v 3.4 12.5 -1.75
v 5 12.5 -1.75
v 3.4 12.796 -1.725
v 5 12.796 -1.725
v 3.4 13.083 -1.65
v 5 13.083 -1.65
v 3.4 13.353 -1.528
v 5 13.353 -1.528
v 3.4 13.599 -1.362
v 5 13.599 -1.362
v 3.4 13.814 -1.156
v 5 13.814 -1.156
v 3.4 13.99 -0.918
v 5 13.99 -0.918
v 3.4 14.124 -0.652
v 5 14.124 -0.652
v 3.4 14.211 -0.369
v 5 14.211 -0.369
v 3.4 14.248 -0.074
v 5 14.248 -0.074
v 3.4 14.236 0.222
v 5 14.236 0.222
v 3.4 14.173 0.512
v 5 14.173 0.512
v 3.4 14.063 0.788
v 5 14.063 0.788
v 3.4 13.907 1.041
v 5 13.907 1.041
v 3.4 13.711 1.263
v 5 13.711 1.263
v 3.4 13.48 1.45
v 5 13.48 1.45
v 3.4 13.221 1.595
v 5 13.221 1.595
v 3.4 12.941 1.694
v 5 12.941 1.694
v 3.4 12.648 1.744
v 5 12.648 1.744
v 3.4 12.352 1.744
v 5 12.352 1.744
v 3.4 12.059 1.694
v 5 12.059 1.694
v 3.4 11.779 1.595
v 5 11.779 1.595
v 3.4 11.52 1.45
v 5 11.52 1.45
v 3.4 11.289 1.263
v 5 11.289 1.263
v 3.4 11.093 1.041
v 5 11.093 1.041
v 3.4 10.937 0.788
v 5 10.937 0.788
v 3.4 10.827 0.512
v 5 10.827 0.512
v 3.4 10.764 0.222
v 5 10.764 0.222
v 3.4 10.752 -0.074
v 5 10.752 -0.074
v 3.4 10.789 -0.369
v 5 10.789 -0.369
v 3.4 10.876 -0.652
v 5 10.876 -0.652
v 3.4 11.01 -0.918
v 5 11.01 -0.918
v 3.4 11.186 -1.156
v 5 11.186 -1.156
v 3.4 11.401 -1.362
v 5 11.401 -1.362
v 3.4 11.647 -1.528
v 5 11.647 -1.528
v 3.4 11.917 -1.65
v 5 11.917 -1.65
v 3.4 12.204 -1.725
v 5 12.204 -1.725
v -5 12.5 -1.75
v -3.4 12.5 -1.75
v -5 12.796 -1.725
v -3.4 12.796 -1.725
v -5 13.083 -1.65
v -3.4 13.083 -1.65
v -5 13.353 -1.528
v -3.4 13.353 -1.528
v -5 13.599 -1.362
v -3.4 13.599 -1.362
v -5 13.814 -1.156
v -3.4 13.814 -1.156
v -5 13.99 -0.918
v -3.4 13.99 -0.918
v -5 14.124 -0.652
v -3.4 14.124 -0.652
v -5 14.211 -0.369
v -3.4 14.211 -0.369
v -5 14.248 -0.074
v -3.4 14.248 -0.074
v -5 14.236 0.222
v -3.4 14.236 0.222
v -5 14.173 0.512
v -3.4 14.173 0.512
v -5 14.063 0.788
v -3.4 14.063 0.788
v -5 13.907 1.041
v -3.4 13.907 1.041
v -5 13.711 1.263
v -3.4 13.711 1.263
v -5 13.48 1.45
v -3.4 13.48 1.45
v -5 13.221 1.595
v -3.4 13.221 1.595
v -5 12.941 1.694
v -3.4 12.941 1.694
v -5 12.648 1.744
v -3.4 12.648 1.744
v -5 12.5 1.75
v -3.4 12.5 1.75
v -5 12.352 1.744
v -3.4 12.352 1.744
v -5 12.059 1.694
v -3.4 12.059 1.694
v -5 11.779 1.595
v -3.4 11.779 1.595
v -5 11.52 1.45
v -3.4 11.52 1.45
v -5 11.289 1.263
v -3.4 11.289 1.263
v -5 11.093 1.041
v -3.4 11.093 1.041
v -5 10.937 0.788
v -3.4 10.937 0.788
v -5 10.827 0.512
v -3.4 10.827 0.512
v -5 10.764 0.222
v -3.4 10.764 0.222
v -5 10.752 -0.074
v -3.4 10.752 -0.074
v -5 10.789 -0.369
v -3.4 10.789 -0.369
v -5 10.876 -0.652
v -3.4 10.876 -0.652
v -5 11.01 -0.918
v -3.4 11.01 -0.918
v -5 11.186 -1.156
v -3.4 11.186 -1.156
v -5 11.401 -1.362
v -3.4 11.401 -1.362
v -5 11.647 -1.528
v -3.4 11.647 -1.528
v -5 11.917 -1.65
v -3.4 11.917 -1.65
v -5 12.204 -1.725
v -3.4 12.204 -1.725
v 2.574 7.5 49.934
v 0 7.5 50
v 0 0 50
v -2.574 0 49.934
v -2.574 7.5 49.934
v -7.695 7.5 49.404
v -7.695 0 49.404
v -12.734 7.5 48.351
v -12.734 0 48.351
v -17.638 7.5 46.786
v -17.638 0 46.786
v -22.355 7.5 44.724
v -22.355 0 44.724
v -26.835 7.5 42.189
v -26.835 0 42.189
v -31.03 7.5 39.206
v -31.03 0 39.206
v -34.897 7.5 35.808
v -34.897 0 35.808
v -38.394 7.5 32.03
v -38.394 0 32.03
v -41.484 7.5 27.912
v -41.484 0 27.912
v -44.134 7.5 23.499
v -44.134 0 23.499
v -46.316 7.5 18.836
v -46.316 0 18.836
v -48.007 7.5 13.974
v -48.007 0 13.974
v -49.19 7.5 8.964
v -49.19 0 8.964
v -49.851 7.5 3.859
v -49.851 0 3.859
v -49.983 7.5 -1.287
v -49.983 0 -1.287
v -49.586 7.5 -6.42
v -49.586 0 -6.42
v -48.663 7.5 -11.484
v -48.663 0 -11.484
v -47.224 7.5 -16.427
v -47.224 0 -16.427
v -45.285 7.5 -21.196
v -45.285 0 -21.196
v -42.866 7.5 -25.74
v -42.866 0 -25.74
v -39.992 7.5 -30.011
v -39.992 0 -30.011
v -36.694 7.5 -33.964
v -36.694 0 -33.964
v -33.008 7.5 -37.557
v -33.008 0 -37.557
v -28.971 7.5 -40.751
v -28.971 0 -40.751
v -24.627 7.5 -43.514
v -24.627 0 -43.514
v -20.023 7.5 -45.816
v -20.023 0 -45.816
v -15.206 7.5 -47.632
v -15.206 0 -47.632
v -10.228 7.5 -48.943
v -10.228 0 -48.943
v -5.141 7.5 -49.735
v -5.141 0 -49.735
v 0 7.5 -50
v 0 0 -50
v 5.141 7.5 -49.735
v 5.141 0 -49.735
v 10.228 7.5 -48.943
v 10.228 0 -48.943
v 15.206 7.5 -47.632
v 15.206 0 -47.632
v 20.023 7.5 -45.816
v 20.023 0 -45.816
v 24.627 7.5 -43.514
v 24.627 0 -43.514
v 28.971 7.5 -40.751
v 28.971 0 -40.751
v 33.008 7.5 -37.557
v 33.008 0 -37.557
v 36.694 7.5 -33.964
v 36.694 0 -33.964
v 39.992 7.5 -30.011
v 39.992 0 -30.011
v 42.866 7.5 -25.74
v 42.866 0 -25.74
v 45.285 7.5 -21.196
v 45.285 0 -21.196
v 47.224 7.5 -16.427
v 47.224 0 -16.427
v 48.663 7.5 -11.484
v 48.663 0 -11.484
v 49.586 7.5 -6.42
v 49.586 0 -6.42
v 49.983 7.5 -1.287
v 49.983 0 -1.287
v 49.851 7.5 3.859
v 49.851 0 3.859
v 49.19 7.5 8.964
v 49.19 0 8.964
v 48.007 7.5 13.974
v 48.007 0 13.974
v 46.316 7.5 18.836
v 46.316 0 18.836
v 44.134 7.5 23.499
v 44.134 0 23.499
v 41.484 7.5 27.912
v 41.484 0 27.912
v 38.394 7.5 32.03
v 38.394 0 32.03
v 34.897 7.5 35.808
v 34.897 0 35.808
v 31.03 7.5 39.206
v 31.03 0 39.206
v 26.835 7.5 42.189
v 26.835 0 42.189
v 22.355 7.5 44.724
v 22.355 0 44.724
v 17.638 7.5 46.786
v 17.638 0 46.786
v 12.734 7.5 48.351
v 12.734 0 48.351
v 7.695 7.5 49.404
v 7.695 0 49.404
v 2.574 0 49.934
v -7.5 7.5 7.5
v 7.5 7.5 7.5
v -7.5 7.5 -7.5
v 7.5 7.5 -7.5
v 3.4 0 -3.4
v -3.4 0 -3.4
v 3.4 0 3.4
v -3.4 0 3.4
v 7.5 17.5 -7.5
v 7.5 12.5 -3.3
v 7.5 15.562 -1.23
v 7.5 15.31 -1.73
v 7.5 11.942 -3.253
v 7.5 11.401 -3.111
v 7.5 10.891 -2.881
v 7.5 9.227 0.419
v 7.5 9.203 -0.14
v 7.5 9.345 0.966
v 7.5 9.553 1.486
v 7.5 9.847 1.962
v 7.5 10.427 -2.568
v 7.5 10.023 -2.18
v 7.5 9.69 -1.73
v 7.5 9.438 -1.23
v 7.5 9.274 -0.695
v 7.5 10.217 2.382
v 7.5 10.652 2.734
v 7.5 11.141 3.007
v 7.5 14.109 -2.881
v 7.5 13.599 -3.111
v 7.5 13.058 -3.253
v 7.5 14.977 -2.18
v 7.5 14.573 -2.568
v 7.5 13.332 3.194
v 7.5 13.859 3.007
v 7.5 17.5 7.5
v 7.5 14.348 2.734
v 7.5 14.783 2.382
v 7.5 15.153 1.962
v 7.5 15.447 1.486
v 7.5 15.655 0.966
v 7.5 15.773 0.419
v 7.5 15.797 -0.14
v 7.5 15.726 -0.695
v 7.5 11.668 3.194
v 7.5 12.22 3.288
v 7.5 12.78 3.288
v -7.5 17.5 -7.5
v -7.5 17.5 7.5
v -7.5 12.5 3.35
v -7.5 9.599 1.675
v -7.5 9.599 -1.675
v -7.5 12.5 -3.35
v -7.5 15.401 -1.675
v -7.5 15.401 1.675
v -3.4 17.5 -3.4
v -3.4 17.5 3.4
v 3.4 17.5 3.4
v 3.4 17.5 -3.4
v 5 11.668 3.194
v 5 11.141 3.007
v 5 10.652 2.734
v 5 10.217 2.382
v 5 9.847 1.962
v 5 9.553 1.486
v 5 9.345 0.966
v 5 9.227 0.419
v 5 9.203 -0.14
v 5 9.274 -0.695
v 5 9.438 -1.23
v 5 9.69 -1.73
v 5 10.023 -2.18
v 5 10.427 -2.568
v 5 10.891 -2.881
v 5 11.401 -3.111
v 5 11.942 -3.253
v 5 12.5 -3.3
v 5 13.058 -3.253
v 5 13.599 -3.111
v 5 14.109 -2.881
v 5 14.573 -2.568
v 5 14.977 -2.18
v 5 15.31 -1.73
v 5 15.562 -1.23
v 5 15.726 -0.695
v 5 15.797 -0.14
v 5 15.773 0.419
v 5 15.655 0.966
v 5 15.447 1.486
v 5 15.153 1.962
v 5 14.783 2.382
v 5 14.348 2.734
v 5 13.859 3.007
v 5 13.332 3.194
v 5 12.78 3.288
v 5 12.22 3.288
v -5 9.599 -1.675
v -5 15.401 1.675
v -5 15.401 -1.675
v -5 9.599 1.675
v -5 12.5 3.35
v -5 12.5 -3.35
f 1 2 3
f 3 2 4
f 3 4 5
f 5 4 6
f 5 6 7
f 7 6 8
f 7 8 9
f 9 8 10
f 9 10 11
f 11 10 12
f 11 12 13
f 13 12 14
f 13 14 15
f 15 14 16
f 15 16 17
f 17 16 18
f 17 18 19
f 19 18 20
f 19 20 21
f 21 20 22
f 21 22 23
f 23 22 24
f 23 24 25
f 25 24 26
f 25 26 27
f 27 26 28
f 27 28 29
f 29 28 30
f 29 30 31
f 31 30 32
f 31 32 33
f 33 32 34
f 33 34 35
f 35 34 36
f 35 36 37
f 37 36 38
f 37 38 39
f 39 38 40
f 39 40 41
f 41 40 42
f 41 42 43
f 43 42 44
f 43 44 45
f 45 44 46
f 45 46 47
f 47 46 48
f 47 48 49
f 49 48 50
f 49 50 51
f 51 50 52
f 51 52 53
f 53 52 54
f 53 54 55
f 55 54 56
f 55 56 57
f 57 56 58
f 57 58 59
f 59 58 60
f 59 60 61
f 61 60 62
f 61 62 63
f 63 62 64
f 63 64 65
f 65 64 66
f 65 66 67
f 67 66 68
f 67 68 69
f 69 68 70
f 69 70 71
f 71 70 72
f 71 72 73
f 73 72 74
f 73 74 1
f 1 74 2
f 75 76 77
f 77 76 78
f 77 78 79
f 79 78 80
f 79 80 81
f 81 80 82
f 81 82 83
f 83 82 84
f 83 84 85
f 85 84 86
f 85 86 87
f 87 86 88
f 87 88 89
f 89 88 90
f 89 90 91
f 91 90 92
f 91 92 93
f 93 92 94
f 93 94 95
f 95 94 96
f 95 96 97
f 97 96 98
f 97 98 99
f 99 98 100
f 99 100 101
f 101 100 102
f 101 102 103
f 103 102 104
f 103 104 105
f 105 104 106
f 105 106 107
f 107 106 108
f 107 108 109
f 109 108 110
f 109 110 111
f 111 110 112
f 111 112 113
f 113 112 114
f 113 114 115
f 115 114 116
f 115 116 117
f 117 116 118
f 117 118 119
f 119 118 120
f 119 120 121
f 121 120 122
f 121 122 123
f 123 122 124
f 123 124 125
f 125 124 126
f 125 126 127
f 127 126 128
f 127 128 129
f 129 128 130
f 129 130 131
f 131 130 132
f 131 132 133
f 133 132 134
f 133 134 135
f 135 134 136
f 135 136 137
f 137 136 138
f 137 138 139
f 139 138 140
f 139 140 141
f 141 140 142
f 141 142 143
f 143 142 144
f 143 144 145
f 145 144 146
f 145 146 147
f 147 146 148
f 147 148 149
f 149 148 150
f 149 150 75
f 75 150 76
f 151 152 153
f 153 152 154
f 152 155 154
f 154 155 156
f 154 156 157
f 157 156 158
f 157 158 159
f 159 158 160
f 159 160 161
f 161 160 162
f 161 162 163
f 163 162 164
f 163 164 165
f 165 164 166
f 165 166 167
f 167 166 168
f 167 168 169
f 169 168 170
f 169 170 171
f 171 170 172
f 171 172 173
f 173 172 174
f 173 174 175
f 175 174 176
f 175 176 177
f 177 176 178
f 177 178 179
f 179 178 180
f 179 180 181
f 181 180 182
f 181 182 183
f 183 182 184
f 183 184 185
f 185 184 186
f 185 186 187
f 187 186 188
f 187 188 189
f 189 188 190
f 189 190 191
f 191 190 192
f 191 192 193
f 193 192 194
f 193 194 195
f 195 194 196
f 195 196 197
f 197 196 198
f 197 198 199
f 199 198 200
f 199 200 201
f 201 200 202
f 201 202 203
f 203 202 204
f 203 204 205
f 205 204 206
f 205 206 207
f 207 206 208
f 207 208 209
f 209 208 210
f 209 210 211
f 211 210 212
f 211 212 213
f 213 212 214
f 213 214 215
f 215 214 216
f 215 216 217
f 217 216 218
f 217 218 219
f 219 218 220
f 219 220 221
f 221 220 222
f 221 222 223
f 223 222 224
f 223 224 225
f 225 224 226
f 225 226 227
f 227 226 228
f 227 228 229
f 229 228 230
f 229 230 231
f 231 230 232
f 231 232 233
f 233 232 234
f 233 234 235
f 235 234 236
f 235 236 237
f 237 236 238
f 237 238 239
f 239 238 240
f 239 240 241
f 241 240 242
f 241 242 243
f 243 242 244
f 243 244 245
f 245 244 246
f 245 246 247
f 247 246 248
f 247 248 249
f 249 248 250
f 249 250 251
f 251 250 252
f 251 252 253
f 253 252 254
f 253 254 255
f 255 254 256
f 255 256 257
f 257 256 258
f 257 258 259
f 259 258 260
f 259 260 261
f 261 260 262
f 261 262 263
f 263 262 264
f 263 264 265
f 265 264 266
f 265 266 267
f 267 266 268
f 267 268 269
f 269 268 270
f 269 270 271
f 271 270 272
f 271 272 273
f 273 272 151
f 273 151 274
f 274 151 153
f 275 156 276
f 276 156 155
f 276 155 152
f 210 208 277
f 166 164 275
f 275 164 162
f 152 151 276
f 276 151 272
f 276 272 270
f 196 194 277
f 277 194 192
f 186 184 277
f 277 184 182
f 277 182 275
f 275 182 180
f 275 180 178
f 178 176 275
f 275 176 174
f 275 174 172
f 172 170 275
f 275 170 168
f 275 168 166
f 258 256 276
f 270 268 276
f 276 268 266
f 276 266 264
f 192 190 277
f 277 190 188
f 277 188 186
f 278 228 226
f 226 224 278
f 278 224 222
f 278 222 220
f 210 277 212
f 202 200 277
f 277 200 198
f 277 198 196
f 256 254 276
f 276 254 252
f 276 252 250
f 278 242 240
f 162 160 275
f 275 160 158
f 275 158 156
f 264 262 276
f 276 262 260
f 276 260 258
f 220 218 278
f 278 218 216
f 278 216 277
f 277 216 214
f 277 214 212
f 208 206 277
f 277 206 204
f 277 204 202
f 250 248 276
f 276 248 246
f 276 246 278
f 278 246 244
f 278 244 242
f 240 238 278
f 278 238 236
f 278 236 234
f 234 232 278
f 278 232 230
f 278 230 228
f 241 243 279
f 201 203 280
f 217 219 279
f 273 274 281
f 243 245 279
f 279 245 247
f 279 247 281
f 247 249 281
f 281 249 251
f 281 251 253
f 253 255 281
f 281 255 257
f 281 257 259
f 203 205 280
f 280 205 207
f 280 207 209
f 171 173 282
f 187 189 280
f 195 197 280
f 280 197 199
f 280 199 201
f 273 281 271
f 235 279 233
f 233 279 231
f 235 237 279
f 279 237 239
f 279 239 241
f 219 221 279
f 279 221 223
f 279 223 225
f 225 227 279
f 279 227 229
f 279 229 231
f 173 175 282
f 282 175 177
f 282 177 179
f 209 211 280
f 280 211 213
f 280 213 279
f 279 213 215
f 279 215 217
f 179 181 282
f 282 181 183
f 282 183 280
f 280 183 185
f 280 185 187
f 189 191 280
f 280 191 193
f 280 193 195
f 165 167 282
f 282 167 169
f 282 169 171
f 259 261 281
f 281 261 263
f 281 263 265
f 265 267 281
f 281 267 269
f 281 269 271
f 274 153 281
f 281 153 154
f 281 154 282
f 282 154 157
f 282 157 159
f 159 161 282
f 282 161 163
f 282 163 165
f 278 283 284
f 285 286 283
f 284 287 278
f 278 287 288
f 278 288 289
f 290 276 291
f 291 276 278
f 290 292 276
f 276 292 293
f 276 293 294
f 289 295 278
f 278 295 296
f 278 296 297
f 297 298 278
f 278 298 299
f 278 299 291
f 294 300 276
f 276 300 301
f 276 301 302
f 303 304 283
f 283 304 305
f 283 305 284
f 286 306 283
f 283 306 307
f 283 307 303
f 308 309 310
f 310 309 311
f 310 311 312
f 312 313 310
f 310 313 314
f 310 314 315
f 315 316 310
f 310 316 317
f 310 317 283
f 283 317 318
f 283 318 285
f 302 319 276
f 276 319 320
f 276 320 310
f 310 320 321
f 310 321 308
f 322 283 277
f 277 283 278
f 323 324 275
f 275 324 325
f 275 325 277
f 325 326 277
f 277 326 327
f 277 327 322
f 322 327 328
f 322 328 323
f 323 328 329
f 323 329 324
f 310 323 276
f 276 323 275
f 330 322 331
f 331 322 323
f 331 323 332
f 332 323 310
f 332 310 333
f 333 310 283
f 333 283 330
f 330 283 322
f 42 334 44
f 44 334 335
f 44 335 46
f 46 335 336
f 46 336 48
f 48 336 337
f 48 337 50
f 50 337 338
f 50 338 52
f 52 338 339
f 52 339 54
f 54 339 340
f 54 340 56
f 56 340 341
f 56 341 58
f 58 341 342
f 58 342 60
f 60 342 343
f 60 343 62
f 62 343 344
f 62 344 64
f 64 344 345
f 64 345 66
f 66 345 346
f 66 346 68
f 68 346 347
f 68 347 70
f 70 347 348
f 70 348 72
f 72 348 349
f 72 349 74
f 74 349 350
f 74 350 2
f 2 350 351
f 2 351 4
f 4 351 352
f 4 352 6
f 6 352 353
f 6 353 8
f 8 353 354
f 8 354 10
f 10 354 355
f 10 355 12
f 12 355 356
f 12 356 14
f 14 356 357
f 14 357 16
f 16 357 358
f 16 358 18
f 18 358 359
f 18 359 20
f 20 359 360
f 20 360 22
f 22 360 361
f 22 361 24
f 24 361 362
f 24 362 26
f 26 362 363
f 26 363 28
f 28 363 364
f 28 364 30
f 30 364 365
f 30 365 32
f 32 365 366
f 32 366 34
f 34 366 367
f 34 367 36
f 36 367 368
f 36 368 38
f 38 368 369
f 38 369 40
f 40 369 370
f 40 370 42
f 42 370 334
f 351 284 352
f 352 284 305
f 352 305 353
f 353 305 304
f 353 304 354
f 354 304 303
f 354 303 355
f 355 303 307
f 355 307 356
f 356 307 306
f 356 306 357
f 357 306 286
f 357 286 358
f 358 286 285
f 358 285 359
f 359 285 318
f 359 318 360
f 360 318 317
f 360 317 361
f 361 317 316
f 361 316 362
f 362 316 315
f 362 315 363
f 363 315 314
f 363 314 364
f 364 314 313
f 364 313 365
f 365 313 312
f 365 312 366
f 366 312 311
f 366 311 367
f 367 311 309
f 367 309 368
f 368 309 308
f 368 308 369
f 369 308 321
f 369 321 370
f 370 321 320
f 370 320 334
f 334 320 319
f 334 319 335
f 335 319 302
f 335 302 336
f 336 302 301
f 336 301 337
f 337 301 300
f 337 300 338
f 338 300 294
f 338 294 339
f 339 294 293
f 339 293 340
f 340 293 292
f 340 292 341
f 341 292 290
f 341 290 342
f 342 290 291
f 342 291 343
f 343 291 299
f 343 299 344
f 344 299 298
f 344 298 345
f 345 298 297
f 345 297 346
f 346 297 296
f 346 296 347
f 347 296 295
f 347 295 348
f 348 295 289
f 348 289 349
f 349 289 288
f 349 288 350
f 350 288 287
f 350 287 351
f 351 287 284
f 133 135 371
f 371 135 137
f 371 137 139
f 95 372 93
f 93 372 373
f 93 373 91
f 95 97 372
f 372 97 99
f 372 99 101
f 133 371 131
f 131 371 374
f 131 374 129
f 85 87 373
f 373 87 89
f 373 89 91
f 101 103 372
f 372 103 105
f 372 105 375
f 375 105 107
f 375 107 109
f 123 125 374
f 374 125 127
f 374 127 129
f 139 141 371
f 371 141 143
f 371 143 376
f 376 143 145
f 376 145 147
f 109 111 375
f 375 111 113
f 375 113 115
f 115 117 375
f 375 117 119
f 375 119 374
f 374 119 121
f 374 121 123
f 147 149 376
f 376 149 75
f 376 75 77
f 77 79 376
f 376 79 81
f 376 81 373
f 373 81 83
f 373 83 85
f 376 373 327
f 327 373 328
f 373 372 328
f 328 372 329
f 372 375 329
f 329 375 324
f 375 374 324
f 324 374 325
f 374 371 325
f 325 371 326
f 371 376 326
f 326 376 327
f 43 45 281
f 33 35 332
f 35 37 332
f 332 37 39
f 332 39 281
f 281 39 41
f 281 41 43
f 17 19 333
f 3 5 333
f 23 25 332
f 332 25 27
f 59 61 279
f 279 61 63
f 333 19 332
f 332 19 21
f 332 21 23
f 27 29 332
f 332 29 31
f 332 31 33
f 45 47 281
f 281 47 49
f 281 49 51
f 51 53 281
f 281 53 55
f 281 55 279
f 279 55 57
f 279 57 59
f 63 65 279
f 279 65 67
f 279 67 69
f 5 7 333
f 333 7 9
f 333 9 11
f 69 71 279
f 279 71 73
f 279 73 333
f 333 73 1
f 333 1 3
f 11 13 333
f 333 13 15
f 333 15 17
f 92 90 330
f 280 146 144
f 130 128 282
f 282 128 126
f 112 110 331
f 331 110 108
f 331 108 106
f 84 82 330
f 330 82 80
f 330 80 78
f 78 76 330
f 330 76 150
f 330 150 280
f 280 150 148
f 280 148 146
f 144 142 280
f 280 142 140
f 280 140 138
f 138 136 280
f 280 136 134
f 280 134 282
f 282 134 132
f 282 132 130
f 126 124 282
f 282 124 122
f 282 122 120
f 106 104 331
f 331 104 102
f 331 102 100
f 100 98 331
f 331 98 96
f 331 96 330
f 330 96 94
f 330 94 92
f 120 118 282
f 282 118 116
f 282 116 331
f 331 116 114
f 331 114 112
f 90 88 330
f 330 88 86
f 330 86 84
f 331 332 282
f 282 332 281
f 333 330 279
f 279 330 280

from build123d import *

# Parameters (mm, degrees)
SKETCH1_R           = 50
BOSS_EXTRUDE1_DEPTH = 7.5
SKETCH2_W           = 15
SKETCH2_H           = 15
BOSS_EXTRUDE2_DEPTH = 10
SKETCH3_R           = 1.75
CUT_EXTRUDE1_DEPTH  = 15
SKETCH4_R           = 3.3
CUT_EXTRUDE2_DEPTH  = 2.5
CUT_EXTRUDE3_DEPTH  = 2.5
SKETCH6_W           = 6.8
SKETCH6_H           = 6.8
CUT_EXTRUDE4_DEPTH  = 17.5


with BuildPart() as part:
    # Sketch1 → Boss-Extrude1 (new body)
    with BuildSketch(Plane(origin=(0, 0, 0), x_dir=(1, 0, 0), z_dir=(0, 1, 0))):
        with Locations(Location((0, 0, 0), (0, 0, 270))):
            Circle(SKETCH1_R)
    extrude(amount=BOSS_EXTRUDE1_DEPTH)

    # Sketch2 → Boss-Extrude2 (add)
    with BuildSketch(Plane(origin=(0, 7.5, 0), x_dir=(1, 0, 0), z_dir=(0, 1, 0))):
        Rectangle(SKETCH2_W, SKETCH2_H)
    extrude(amount=BOSS_EXTRUDE2_DEPTH)

    # Sketch3 → Cut-Extrude1 (cut)
    with BuildSketch(Plane(origin=(7.5, 0, 0), x_dir=(0, 0, -1), z_dir=(1, 0, 0))):
        with Locations((0, 12.5)):
            Circle(SKETCH3_R)
    extrude(amount=-CUT_EXTRUDE1_DEPTH, mode=Mode.SUBTRACT)

    # Sketch4 → Cut-Extrude2 (cut)
    with BuildSketch(Plane(origin=(7.5, 0, 0), x_dir=(0, 0, -1), z_dir=(1, 0, 0))):
        with Locations((0, 12.5)):
            Circle(SKETCH4_R)
    extrude(amount=-CUT_EXTRUDE2_DEPTH, mode=Mode.SUBTRACT)

    # Sketch5 → Cut-Extrude3 (cut)
    with BuildSketch(Plane.ZY.offset(7.5)):
        Polygon((-3.35, 12.5), (-1.675, 9.598814897), (1.675, 9.598814897), (3.35, 12.5), (1.675, 15.401185103), (-1.675, 15.401185103), align=None)
    extrude(amount=-CUT_EXTRUDE3_DEPTH, mode=Mode.SUBTRACT)

    # Sketch6 → Cut-Extrude4 (cut)
    with BuildSketch(Plane(origin=(0, 17.5, 0), x_dir=(1, 0, 0), z_dir=(0, 1, 0))):
        Rectangle(SKETCH6_W, SKETCH6_H)
    extrude(amount=-CUT_EXTRUDE4_DEPTH, mode=Mode.SUBTRACT)


solid = part.part
